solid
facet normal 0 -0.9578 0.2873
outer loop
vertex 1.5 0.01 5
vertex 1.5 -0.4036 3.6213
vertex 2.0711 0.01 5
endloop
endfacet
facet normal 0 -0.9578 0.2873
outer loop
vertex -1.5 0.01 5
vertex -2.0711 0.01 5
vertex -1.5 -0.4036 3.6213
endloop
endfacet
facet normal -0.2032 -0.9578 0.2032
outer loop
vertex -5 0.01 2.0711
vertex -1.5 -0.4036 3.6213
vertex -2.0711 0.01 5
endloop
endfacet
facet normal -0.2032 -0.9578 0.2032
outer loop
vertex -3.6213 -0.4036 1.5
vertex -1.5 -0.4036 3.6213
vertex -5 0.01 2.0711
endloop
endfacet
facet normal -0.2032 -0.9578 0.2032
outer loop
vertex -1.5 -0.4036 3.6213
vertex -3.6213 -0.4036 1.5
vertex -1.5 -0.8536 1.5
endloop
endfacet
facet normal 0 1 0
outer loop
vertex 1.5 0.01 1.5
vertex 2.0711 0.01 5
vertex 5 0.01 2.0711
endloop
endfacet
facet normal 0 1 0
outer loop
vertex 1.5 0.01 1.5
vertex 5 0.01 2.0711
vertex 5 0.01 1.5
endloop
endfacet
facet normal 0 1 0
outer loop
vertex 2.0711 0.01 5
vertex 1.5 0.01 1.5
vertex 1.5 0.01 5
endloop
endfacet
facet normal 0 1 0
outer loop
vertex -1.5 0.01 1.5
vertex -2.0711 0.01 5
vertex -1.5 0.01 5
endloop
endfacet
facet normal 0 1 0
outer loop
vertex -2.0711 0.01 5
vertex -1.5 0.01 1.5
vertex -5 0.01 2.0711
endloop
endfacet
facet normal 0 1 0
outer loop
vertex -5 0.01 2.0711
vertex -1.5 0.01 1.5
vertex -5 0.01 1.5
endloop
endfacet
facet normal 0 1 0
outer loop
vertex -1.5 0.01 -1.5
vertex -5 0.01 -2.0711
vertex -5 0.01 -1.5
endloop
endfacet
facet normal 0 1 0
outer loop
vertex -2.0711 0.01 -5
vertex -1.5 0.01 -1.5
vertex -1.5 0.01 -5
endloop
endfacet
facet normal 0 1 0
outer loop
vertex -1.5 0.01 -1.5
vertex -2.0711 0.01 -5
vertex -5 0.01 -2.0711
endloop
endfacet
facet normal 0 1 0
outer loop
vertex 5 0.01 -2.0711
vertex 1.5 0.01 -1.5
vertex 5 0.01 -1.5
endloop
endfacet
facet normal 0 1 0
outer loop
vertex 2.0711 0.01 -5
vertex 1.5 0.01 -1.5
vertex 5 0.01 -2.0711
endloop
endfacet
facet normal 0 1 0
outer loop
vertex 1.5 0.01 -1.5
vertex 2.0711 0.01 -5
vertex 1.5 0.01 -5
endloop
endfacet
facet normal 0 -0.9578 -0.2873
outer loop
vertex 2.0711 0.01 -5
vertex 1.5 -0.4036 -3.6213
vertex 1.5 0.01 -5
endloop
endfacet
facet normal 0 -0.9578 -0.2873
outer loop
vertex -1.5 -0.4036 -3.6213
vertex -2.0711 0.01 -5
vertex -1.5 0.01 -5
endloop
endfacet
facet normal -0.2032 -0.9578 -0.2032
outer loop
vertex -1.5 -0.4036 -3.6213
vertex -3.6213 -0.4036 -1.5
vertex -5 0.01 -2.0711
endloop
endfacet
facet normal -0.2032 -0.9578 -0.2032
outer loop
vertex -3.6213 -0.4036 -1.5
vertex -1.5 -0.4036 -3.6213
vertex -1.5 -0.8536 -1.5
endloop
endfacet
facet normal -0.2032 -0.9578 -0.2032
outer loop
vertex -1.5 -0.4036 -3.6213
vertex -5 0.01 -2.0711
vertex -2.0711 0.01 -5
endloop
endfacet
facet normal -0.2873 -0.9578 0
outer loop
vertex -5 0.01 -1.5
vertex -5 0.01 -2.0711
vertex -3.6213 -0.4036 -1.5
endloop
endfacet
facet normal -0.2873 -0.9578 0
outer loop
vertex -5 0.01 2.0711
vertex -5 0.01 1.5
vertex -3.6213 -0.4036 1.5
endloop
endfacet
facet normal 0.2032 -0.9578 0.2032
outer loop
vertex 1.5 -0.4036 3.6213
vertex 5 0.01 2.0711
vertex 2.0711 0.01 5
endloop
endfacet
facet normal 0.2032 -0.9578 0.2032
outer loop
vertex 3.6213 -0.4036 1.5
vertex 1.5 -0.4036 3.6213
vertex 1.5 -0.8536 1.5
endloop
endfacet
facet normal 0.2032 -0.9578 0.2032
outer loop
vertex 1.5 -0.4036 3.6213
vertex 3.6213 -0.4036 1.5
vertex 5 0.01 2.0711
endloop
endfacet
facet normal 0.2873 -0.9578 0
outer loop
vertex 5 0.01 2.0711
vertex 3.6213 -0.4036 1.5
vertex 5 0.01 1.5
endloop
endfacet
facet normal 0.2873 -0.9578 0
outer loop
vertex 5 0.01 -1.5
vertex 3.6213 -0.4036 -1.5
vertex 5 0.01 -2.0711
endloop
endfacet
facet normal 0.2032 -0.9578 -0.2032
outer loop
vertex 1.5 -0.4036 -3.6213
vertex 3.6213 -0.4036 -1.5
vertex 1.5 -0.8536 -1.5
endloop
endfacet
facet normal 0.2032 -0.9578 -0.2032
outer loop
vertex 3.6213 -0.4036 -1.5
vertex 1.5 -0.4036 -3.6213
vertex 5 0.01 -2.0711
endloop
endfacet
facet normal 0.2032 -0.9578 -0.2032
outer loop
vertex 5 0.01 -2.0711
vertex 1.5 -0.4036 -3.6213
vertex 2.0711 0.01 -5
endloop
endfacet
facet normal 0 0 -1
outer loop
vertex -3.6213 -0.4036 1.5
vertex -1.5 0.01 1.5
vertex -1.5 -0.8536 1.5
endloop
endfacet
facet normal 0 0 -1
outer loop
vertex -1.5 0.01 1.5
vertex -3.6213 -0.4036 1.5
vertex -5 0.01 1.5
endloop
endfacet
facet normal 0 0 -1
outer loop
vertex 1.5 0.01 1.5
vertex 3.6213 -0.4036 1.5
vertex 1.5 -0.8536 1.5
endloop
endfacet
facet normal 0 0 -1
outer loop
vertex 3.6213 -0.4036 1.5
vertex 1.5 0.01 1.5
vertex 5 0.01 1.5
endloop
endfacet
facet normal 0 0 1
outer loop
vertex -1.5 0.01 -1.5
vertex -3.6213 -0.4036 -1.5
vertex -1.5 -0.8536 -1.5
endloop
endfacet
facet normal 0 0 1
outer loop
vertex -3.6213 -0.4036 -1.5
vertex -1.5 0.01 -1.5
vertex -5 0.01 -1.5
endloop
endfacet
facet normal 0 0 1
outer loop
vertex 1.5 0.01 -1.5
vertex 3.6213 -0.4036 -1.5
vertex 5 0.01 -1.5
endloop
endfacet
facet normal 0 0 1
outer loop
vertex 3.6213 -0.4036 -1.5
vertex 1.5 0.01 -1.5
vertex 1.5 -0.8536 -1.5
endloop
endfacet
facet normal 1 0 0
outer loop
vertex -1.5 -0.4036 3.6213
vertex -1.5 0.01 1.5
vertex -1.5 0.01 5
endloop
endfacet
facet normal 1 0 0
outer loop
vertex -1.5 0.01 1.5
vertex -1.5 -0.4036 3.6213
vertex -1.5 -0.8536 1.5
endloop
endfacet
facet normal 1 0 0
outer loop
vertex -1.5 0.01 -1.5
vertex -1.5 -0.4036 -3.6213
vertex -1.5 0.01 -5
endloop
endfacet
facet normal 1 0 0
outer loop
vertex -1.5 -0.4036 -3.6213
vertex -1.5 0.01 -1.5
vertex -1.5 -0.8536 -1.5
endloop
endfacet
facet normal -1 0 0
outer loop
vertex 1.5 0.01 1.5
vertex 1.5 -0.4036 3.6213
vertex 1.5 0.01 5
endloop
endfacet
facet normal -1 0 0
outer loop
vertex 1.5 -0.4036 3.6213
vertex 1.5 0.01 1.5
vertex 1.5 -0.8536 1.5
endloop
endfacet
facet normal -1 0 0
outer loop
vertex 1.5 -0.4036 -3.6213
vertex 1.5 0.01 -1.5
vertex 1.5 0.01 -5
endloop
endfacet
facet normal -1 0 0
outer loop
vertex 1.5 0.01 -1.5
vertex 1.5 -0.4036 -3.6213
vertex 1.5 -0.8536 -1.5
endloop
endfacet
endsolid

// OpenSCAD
use <../MultiConnect_Multibin.scad>
yMultipointSlotDimples(1,8.5,25,12.5);
